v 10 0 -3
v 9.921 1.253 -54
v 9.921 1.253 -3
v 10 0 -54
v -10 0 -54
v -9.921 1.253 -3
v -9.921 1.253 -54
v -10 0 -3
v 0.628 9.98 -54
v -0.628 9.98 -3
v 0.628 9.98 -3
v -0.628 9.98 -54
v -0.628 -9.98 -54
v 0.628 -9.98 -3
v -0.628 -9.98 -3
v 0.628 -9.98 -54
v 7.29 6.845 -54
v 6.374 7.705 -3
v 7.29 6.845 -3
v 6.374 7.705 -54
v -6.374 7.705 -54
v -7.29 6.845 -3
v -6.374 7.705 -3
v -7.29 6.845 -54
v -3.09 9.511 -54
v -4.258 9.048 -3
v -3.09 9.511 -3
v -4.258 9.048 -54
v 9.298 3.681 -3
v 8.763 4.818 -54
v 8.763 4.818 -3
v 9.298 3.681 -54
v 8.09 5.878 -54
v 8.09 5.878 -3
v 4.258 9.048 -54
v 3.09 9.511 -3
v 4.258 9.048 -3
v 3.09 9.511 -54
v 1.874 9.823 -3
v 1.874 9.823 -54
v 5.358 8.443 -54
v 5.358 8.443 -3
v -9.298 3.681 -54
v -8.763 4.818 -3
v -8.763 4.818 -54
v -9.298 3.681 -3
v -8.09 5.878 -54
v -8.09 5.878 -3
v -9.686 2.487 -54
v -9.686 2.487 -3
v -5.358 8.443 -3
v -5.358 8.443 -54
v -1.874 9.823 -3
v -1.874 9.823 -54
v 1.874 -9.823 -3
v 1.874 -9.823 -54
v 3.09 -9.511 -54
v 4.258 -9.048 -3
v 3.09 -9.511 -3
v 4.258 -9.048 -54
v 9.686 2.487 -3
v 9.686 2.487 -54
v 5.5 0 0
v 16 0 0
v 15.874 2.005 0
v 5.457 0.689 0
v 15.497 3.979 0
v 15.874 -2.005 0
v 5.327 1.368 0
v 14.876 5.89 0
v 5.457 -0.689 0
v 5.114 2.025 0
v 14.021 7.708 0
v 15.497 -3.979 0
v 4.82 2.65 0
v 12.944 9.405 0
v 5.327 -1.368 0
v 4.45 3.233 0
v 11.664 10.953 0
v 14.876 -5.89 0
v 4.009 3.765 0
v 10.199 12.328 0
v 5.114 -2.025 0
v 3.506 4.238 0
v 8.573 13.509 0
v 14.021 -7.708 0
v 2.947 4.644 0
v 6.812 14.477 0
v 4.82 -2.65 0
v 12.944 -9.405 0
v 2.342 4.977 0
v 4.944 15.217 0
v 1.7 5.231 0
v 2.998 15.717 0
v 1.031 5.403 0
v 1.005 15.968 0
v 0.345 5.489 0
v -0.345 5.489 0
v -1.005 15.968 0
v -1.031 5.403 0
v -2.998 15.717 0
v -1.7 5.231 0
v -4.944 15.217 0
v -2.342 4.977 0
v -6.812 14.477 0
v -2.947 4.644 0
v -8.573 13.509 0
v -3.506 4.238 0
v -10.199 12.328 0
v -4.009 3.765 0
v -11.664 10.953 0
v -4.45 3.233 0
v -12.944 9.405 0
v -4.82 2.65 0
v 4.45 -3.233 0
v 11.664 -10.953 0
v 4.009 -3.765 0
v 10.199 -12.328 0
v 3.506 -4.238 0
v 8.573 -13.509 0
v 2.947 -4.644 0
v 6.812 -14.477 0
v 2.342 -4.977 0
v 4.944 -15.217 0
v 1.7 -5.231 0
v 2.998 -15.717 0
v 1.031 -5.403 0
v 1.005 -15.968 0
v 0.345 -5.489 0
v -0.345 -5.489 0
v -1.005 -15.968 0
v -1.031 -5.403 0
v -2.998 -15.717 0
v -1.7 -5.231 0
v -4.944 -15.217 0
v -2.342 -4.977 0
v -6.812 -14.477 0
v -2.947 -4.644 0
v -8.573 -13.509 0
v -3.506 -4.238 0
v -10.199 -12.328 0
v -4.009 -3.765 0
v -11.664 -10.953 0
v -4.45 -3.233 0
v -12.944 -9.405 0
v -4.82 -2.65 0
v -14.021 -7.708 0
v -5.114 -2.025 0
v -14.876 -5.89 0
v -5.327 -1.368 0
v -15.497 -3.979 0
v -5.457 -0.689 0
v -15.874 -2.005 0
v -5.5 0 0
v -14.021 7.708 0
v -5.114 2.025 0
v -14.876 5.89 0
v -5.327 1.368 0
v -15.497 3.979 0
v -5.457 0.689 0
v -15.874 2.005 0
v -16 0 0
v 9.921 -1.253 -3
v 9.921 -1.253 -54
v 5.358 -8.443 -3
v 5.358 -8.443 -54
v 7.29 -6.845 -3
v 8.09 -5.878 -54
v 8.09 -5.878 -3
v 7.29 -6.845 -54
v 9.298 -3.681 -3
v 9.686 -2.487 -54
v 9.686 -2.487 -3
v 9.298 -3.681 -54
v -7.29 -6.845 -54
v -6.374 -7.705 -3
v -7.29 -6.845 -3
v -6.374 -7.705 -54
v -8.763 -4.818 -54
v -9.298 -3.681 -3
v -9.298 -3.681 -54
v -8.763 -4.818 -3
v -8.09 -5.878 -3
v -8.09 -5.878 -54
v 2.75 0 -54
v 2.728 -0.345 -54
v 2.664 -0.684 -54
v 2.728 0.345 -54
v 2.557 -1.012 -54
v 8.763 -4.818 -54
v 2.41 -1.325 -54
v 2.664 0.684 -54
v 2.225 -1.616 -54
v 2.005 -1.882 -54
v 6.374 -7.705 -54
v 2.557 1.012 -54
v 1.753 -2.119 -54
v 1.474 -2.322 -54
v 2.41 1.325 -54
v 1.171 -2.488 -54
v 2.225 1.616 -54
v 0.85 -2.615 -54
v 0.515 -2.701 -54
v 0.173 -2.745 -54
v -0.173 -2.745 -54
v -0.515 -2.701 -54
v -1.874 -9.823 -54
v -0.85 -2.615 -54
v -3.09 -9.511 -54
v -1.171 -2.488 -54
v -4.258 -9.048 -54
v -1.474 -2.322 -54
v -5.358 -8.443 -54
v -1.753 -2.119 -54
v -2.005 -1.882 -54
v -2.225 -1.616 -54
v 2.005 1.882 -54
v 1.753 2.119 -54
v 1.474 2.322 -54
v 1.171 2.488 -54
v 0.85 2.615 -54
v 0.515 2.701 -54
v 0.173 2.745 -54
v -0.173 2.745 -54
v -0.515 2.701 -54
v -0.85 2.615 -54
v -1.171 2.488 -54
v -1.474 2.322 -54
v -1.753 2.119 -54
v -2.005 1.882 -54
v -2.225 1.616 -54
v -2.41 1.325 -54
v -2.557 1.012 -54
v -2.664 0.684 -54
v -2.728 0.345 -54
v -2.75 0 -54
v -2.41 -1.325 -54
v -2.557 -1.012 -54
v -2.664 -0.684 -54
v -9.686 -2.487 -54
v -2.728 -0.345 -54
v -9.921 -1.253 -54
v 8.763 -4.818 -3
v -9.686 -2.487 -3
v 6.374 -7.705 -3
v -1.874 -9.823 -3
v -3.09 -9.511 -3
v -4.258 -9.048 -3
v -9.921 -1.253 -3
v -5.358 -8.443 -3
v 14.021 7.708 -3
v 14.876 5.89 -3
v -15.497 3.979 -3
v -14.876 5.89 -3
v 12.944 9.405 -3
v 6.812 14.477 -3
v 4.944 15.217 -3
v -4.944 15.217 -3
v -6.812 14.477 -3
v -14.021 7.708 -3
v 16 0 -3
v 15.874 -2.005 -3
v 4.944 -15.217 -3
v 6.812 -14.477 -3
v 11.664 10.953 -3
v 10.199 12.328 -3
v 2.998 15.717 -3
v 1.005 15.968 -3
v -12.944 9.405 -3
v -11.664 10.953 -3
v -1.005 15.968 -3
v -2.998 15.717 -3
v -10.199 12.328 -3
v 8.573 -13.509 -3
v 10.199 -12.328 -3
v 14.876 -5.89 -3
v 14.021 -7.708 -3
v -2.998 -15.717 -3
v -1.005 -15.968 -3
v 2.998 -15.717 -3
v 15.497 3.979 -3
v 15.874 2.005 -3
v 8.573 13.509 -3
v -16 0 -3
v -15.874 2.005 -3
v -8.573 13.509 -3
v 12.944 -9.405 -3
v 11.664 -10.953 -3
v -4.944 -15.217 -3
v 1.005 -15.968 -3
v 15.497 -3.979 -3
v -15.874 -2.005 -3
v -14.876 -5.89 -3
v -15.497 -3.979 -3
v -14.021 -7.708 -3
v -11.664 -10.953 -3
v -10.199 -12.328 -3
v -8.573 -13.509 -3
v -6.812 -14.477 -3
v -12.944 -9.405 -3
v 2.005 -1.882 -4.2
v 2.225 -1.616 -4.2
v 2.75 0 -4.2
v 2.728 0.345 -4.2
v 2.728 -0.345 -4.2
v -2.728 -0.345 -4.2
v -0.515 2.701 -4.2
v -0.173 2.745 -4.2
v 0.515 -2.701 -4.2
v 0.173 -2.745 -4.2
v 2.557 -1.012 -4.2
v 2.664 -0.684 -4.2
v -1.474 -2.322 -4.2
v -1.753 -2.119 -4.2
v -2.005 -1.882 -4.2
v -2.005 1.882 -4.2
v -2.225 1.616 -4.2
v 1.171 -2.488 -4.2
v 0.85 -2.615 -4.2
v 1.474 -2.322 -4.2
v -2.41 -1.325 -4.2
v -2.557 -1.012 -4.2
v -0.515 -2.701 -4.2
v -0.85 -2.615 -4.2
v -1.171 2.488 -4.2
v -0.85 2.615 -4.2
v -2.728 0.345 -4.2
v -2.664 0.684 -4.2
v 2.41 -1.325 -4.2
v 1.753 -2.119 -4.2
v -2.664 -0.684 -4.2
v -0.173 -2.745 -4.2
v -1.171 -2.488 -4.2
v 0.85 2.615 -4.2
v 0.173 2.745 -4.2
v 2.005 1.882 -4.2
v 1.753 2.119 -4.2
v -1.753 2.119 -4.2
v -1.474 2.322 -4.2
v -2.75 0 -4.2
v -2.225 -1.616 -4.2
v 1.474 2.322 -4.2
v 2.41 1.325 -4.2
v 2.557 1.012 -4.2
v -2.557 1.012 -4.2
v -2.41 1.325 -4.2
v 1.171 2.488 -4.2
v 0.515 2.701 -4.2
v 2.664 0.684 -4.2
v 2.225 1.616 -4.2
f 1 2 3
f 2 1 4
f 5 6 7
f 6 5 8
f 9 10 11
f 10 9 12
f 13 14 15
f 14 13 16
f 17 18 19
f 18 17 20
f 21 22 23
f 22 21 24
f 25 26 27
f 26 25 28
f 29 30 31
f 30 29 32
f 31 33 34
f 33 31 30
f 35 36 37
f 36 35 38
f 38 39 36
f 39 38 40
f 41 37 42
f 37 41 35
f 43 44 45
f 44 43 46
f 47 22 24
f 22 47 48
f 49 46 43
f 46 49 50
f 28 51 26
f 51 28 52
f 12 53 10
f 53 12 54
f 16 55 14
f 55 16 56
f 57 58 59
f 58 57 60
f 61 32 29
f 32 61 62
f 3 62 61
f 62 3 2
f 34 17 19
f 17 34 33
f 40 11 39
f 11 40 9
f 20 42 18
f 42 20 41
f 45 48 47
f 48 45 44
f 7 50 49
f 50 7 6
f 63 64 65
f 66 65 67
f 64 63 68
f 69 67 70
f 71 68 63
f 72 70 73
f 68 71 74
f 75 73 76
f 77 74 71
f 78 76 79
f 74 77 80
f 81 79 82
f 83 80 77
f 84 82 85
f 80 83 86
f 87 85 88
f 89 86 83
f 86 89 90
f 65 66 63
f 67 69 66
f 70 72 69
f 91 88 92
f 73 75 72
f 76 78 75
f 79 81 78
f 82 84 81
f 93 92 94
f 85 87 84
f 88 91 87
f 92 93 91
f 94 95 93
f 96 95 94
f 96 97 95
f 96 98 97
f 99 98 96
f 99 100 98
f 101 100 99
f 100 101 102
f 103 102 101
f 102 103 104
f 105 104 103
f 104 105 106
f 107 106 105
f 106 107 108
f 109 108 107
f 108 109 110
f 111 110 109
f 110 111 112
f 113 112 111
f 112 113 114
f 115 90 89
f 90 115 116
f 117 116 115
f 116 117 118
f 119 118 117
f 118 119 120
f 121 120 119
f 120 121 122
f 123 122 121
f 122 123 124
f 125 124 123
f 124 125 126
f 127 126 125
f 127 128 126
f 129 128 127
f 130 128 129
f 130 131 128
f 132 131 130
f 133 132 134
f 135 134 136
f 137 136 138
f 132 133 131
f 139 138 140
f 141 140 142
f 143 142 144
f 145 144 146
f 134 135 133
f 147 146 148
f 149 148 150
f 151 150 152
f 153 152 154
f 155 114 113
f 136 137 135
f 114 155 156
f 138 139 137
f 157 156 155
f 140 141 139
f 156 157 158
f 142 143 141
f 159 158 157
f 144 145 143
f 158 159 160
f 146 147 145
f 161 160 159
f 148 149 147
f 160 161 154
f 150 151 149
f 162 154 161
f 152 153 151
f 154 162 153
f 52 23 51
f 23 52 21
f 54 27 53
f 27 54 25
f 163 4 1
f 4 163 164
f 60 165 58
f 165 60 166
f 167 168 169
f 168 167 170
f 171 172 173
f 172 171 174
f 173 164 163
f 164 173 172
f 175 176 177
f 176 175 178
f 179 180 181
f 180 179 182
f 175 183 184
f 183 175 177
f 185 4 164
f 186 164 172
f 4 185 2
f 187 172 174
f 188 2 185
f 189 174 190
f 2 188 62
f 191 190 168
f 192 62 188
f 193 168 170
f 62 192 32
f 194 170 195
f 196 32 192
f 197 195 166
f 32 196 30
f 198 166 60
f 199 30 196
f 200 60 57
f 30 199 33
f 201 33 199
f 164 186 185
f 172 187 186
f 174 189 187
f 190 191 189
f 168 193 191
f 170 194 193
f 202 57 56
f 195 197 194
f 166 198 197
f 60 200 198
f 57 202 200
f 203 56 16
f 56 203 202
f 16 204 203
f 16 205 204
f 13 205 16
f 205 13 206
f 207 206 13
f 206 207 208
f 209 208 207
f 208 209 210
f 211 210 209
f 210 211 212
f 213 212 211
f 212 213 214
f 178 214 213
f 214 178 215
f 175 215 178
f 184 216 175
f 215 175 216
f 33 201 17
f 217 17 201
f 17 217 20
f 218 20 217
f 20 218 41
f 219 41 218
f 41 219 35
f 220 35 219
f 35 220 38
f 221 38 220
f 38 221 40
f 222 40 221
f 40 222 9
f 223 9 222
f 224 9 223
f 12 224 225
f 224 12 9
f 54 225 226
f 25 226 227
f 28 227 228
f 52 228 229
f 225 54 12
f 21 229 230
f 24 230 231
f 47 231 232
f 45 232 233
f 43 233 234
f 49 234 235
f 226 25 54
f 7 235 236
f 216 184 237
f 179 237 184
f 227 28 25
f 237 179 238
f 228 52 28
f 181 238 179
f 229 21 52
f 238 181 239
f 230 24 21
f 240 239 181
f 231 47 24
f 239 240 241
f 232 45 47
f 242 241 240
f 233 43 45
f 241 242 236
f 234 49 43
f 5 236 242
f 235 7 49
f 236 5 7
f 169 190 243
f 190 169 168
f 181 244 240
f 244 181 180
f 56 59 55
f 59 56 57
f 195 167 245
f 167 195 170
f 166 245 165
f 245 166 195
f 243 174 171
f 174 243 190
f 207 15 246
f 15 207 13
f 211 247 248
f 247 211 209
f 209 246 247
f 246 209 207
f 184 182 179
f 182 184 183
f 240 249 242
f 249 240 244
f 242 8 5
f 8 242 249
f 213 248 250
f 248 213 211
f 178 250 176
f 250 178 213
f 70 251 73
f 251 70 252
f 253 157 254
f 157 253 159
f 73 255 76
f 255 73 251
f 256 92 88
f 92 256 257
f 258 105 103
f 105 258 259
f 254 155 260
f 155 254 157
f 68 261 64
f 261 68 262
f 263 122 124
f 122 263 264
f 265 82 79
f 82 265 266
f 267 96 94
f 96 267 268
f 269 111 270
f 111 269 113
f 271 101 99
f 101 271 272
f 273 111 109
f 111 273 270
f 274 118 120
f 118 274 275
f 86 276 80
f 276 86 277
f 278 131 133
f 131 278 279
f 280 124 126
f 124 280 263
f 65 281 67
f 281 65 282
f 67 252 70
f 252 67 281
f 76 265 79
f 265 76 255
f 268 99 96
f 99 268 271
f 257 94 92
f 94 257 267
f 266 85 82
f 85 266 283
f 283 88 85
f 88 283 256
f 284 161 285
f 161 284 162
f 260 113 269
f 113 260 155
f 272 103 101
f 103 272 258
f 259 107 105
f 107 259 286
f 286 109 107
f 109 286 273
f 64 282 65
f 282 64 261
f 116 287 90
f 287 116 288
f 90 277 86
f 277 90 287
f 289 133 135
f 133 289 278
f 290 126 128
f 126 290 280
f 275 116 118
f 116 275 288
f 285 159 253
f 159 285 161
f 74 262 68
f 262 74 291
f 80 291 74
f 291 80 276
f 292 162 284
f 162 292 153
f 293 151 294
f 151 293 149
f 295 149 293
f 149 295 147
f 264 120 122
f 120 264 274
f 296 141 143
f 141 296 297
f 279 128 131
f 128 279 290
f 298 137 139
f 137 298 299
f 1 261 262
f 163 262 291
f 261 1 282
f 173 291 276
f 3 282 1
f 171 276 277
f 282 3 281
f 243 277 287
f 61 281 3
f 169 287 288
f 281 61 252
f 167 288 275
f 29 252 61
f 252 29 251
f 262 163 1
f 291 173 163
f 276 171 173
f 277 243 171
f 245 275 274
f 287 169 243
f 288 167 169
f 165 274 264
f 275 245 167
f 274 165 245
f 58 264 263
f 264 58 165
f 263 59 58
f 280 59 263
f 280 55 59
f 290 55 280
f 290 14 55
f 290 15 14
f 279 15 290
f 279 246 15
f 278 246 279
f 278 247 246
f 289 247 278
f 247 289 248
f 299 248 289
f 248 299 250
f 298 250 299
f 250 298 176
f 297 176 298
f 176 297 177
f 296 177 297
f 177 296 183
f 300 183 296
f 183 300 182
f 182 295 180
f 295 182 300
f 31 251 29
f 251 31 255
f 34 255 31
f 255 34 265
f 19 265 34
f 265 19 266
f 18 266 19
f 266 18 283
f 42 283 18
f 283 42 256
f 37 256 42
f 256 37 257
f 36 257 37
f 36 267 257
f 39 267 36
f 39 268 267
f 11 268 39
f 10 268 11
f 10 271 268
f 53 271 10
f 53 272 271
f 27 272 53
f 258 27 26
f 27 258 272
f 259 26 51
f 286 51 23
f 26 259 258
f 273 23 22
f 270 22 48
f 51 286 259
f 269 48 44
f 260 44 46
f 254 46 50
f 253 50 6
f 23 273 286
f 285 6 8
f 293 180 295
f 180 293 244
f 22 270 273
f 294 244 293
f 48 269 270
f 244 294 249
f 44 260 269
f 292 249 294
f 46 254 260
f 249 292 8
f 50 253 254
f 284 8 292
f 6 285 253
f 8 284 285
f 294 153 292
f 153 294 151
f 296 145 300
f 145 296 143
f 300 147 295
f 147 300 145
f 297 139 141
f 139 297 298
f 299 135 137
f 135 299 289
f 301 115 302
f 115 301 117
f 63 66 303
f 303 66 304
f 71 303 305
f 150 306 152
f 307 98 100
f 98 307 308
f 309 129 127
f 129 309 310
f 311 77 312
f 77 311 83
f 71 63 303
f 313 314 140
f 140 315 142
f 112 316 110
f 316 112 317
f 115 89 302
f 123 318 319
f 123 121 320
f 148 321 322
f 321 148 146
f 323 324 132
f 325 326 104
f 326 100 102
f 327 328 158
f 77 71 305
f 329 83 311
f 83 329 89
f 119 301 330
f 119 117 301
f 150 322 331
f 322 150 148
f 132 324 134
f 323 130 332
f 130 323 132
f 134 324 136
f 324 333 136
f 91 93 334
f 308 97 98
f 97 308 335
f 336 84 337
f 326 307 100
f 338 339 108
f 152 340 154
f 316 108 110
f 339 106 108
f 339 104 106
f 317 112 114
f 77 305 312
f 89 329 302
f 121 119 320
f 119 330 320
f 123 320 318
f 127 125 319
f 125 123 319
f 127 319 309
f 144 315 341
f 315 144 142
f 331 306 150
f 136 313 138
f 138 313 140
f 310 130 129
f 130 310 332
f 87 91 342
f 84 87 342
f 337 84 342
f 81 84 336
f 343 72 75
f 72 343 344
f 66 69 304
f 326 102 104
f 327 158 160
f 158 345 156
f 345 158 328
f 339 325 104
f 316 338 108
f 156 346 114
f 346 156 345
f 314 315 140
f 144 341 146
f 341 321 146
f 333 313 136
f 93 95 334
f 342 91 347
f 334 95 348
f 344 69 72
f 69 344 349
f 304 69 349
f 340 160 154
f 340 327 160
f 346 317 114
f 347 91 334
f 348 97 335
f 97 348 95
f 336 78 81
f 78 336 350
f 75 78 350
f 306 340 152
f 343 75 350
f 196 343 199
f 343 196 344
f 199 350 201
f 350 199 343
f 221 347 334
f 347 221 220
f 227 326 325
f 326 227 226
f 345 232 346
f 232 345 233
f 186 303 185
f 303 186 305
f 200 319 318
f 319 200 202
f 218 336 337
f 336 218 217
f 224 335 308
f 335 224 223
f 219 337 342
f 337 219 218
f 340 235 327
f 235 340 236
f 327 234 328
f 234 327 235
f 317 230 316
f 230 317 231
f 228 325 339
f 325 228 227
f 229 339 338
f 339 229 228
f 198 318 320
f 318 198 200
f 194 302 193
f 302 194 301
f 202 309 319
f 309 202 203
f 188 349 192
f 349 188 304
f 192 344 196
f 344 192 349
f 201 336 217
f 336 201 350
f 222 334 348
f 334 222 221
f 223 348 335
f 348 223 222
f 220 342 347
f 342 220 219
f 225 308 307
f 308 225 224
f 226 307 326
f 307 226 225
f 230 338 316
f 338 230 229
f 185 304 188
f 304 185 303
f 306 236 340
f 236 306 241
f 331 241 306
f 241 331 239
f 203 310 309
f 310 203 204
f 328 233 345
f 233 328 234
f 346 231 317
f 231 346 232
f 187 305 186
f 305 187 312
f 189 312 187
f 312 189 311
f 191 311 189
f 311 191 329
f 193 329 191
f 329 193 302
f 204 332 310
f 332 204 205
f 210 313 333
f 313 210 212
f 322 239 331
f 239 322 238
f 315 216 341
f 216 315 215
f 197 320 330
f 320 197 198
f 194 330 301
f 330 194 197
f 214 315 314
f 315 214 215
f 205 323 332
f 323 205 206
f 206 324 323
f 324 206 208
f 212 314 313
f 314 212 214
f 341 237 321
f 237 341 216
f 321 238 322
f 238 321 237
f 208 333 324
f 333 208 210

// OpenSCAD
$fn = 50;


difference() {
	union() {
		translate(v = [0, 0, -54.0000000000]) {
			cylinder(h = 54, r = 10.0000000000);
		}
		translate(v = [0, 0, -3.0000000000]) {
			cylinder(h = 3, r = 16.0000000000);
		}
	}
	union() {
		translate(v = [0, 0, 0]) {
			rotate(a = [0, 0, 0]) {
				difference() {
					union() {
						#translate(v = [0, 0, -54.0000000000]) {
							cylinder(h = 54, r = 2.2500000000);
						}
						#translate(v = [0, 0, -4.2000000000]) {
							cylinder(h = 4.2000000000, r1 = 2.7500000000, r2 = 5.5000000000);
						}
						#translate(v = [0, 0, -54.0000000000]) {
							cylinder(h = 54, r = 2.7500000000);
						}
						#translate(v = [0, 0, -54.0000000000]) {
							cylinder(h = 54, r = 2.2500000000);
						}
					}
					union();
				}
			}
		}
	}
}
